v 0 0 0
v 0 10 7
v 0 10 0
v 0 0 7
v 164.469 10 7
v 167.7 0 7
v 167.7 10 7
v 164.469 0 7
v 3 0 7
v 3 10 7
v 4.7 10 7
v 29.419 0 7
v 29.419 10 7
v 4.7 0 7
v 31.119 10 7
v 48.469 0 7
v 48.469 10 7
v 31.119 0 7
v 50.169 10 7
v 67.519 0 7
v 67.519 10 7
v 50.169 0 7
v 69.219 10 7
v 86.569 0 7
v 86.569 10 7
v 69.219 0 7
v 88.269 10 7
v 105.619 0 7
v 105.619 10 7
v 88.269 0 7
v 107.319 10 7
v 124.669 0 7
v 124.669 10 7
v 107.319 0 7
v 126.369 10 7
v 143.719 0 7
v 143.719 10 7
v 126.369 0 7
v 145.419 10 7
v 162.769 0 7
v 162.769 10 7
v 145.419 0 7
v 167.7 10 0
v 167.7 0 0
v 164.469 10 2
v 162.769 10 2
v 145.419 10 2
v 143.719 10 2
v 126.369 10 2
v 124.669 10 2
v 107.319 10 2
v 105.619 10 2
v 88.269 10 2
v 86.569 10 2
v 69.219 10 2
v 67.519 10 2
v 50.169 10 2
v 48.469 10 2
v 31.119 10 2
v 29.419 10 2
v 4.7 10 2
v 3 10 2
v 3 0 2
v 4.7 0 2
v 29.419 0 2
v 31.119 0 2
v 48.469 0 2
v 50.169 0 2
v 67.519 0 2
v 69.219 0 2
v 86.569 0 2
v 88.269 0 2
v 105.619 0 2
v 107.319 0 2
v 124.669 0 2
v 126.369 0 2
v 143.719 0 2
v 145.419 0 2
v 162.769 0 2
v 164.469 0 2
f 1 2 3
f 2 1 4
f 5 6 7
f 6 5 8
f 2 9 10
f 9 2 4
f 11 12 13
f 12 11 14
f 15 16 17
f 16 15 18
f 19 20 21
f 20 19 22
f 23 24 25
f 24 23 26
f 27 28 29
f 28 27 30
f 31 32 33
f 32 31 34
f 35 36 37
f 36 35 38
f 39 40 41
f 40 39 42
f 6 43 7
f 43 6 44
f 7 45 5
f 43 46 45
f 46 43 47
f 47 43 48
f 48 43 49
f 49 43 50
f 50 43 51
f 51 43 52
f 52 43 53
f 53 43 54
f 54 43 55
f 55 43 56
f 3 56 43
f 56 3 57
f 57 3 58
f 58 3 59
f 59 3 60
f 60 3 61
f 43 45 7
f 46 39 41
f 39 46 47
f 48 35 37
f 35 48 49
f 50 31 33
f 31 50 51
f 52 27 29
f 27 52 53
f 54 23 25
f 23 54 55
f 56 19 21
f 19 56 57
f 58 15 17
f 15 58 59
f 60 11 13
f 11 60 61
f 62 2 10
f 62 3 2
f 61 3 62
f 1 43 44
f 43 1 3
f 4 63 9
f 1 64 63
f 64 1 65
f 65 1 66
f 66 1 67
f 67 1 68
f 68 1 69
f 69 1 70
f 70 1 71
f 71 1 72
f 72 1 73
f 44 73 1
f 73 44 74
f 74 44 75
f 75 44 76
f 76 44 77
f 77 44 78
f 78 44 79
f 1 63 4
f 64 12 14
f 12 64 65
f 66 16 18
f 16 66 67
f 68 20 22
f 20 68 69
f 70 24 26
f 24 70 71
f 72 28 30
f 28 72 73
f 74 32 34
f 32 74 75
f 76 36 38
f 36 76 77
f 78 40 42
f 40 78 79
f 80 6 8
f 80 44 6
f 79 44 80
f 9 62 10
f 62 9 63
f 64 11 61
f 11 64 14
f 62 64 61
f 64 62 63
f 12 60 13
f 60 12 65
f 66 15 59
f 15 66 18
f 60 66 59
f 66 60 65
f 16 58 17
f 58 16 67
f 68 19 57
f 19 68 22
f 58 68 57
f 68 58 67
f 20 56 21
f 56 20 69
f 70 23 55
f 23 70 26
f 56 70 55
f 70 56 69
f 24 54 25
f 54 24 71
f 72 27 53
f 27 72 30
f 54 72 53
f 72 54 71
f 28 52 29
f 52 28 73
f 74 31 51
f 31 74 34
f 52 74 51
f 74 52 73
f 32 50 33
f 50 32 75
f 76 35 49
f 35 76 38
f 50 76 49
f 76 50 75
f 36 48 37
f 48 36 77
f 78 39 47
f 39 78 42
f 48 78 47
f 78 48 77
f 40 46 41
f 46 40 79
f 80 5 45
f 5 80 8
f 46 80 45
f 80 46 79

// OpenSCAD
slotWidth = 1.7;
length = 10;
offset = 3;
height = 7;
firstWidth = 26.41854;
remainingWidths = 19.05;

difference() {
    cube([167.7,10,height]);
        
    translate([offset, 0, 2]) {
        cube([slotWidth, length, height]);
    }

    translate([offset + firstWidth , 0, 2]) {
        cube([slotWidth, length, height]);
    }

    translate([offset + firstWidth + (remainingWidths*1), 0, 2]) {
        cube([slotWidth, length, height]);
    }
    translate([offset + firstWidth + (remainingWidths*2), 0, 2]) {
        cube([slotWidth, length, height]);
    }
    translate([offset + firstWidth + (remainingWidths*3), 0, 2]) {
        cube([slotWidth, length, height]);
    }
    translate([offset + firstWidth + (remainingWidths*4), 0, 2]) {
        cube([slotWidth, length, height]);
    }
    translate([offset + firstWidth + (remainingWidths*5), 0, 2]) {
        cube([slotWidth, length, height]);
    }
    translate([offset + firstWidth + (remainingWidths*6), 0, 2]) {
        cube([slotWidth, length, height]);
    }
    translate([offset + firstWidth + (remainingWidths*7), 0, 2]) {
        cube([slotWidth, length, height]);
    }


}
